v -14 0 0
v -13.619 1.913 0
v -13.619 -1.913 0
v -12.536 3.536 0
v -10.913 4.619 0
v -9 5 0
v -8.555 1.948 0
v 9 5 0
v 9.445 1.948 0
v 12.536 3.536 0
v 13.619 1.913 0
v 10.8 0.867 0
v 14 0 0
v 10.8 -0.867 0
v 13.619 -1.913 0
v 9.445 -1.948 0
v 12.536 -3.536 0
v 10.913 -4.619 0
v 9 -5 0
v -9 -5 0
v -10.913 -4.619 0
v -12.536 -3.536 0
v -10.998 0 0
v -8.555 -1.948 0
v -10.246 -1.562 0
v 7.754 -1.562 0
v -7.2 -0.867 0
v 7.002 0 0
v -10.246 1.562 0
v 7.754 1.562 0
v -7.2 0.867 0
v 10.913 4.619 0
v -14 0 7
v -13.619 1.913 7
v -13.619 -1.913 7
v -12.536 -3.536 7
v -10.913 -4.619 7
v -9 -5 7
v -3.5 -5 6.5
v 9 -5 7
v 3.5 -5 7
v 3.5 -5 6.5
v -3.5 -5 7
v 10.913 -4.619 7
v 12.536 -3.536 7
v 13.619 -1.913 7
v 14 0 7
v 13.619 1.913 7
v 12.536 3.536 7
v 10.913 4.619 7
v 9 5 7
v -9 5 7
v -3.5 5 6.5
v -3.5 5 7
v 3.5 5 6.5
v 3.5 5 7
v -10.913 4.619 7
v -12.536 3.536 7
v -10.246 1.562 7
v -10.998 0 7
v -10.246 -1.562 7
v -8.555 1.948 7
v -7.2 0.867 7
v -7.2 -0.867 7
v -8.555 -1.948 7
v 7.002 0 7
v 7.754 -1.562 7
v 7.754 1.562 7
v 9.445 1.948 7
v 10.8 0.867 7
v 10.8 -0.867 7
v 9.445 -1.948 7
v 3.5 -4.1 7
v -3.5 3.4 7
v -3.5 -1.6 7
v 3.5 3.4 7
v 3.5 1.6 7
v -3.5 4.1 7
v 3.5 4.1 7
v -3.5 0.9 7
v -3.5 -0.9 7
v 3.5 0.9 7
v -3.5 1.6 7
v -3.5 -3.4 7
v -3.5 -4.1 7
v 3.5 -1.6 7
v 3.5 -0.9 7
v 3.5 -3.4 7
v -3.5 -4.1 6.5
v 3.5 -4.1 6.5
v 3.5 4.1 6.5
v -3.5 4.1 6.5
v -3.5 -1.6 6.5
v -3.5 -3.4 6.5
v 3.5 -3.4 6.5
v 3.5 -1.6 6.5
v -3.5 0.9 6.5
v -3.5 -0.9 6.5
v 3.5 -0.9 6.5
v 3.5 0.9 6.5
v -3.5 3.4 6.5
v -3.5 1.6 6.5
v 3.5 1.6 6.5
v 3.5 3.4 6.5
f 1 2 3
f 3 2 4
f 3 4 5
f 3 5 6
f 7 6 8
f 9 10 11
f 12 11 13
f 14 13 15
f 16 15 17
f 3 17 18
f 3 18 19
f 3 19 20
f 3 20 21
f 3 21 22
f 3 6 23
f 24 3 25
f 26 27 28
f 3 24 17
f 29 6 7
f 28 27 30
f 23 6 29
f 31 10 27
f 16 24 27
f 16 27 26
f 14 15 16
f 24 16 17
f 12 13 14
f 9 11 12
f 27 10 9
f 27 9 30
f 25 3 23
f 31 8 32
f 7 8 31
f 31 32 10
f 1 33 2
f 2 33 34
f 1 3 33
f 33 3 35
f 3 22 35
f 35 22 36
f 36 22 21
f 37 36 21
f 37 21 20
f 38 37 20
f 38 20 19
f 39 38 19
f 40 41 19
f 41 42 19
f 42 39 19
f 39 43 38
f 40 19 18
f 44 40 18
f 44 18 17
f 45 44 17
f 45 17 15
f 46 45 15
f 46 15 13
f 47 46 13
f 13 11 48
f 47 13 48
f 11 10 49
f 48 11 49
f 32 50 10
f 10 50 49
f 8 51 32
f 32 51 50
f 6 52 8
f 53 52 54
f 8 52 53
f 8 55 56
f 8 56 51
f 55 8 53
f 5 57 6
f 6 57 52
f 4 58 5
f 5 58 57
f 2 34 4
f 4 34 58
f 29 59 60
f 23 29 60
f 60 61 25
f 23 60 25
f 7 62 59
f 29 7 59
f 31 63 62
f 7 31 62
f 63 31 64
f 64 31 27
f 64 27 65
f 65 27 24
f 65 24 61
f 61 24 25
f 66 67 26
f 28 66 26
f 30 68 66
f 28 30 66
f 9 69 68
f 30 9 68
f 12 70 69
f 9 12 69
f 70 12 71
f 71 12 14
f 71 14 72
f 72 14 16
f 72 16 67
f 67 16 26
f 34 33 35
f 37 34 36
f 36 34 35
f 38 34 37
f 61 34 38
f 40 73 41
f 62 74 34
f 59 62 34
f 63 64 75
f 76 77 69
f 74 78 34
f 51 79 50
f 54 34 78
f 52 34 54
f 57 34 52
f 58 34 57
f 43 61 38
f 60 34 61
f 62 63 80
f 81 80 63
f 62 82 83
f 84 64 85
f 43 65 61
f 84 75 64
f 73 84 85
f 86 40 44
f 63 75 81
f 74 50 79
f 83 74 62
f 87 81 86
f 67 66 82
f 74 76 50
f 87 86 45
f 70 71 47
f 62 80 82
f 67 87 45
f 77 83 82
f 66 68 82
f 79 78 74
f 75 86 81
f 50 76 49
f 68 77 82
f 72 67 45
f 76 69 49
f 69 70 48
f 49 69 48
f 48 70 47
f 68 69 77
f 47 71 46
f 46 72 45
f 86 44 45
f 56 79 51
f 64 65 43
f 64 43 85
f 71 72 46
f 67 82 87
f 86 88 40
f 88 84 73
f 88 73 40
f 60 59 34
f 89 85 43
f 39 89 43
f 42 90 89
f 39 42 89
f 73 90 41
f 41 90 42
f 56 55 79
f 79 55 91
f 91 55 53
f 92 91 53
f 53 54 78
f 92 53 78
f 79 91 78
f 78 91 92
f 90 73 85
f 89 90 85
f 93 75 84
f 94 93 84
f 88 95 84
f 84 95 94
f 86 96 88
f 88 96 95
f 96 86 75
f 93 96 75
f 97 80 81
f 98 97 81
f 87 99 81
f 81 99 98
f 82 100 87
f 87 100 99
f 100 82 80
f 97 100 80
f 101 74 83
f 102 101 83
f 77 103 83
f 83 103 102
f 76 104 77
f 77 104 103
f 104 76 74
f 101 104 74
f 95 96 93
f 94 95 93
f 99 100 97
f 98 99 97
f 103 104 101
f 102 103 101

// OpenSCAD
// file: functions.scad
// PRUSA Mendel  
// Functions used in many files
// GNU GPL v2
// Josef Průša
// josefprusa@me.com
// prusadjs.cz
// http://www.reprap.org/wiki/Prusa_Mendel
// http://github.com/prusajr/PrusaMendel

module nut(d,h,horizontal=true){
cornerdiameter =  (d / 2) / cos (180 / 6);
cylinder(h = h, r = cornerdiameter, $fn = 6);
if(horizontal){
for(i = [1:6]){
	rotate([0,0,60*i]) translate([-cornerdiameter-0.2,0,0]) rotate([0,0,-45]) cube(size = [2,2,h]);
}}
}

// By nophead
module polyhole(d,h) {
    n = max(round(2 * d),3);
    rotate([0,0,180])
        cylinder(h = h, r = (d / 2) / cos (180 / n), $fn = n);
}




module roundcorner(diameter){
	difference(){
		cube(size = [diameter,diameter,99], center = false);
		translate(v = [diameter, diameter, 0]) cylinder(h = 100, r=diameter, center=true);
	}
}
// file: metric.scad
// PRUSA Mendel  
// Default metric sizes
// GNU GPL v3
// Josef Průša
// josefprusa@me.com
// prusadjs.cz
// http://www.reprap.org/wiki/Prusa_Mendel
// http://github.com/prusajr/PrusaMendel

// DONT CHANGE THIS FILE! ALTER VALUES IN CONFIGURATION.SCAD INSTEAD

// RODS

threaded_rod_diameter = 8.7;
threaded_rod_diameter_horizontal = 8.7;
smooth_bar_diameter = 8;
smooth_bar_diameter_horizontal = 8.5;

// Nuts and bolts

m8_diameter = 9;
m8_nut_diameter = 14.1;

m4_diameter = 4.5;
m4_nut_diameter = 9;

m3_diameter = 3.6;
m3_nut_diameter = 5.5;
m3_nut_diameter_horizontal = 6.1;

// Bushing holder

bushing_core_diameter = smooth_bar_diameter;
bushing_material_thickness = 1;

// Motors

motor_shaft = 5.5;
// file: configuration.scad
// PRUSA Mendel  
// Configuration file
// GNU GPL v3
// Josef Průša
// josefprusa@me.com
// prusadjs.cz
// http://www.reprap.org/wiki/Prusa_Mendel
// http://github.com/prusajr/PrusaMendel

// PLEASE SELECT ONE OF THE CONFIGURATIONS BELOW
// BY UN-COMMENTING IT

// Uncomment for metric settings
// METRIC METRIC METRIC METRIC METRIC METRIC METRIC METRIC 

include <metric.scad>;

// CUSTOM CUSTOM CUSTOM CUSTOM CUSTOM CUSTOM CUSTOM CUSTOM CUSTOM

thin_wall = 3;

// LM8UU
linear = true;


// CHANGE ONLY THE STUFF YOU KNOW
// IT WILL REPLACE DEFAULT SETTING

// RODS

// threaded_rod_diameter = 0;
// threaded_rod_diameter_horizontal = 0;
// smooth_bar_díameter = 0;
// smooth_bar_díameter_horizontal = 0;

// Nuts and bolts

// m8_diameter = 0;
// m8_nut_diameter = 0;

// m4_diameter = 0;
// m4_nut_diameter = 0;

// m3_diameter = 0;
// m3_nut_diameter = 0;

// Bushing holder

// bushing_core_diameter = smooth_bar_díameter;
// bushing_material_thickness = 0;


///counted stuff
m3_nut_diameter_bigger = ((m3_nut_diameter  / 2) / cos (180 / 6))*2;

// functions 
include <functions.scad>
// main file
// PRUSA Mendel  
// Belt clamp
// GNU GPL v2
// Josef Průša
// josefprusa@me.com
// prusadjs.cz
// http://www.reprap.org/wiki/Prusa_Mendel
// http://github.com/prusajr/PrusaMendel

include <configuration.scad>

/**
 * @id belt-clamp
 * @name Belt clamp
 * @category Printed
 */ 

module beltclamp(){
difference(){
	union(0){
translate(v = [0,0,3.5]) cube([18,10,7], center=true);
		translate(v = [-9, 0, 0]) cylinder(r=5,h=7);
		translate(v = [9, 0, 0]) cylinder(r=5,h=7);
}
translate(v = [-9, 0, -1])polyhole(m3_diameter, 12);
translate(v = [9, 0, -1]) polyhole(m3_diameter, 12);
translate(v = [0,0,6.5]){
translate(v = [0,0,5])cube(size = [7, 1.8, 10], center = true);
translate(v = [0,2.5,5])cube(size = [7, 1.8, 10], center = true);
translate(v = [0,5,5])cube(size = [7, 1.8, 10], center = true);
translate(v = [0,-2.5,5])cube(size = [7, 1.8, 10], center = true);
translate(v = [0,-5,5])cube(size = [7, 1.8, 10], center = true);
}
}
}
beltclamp();
